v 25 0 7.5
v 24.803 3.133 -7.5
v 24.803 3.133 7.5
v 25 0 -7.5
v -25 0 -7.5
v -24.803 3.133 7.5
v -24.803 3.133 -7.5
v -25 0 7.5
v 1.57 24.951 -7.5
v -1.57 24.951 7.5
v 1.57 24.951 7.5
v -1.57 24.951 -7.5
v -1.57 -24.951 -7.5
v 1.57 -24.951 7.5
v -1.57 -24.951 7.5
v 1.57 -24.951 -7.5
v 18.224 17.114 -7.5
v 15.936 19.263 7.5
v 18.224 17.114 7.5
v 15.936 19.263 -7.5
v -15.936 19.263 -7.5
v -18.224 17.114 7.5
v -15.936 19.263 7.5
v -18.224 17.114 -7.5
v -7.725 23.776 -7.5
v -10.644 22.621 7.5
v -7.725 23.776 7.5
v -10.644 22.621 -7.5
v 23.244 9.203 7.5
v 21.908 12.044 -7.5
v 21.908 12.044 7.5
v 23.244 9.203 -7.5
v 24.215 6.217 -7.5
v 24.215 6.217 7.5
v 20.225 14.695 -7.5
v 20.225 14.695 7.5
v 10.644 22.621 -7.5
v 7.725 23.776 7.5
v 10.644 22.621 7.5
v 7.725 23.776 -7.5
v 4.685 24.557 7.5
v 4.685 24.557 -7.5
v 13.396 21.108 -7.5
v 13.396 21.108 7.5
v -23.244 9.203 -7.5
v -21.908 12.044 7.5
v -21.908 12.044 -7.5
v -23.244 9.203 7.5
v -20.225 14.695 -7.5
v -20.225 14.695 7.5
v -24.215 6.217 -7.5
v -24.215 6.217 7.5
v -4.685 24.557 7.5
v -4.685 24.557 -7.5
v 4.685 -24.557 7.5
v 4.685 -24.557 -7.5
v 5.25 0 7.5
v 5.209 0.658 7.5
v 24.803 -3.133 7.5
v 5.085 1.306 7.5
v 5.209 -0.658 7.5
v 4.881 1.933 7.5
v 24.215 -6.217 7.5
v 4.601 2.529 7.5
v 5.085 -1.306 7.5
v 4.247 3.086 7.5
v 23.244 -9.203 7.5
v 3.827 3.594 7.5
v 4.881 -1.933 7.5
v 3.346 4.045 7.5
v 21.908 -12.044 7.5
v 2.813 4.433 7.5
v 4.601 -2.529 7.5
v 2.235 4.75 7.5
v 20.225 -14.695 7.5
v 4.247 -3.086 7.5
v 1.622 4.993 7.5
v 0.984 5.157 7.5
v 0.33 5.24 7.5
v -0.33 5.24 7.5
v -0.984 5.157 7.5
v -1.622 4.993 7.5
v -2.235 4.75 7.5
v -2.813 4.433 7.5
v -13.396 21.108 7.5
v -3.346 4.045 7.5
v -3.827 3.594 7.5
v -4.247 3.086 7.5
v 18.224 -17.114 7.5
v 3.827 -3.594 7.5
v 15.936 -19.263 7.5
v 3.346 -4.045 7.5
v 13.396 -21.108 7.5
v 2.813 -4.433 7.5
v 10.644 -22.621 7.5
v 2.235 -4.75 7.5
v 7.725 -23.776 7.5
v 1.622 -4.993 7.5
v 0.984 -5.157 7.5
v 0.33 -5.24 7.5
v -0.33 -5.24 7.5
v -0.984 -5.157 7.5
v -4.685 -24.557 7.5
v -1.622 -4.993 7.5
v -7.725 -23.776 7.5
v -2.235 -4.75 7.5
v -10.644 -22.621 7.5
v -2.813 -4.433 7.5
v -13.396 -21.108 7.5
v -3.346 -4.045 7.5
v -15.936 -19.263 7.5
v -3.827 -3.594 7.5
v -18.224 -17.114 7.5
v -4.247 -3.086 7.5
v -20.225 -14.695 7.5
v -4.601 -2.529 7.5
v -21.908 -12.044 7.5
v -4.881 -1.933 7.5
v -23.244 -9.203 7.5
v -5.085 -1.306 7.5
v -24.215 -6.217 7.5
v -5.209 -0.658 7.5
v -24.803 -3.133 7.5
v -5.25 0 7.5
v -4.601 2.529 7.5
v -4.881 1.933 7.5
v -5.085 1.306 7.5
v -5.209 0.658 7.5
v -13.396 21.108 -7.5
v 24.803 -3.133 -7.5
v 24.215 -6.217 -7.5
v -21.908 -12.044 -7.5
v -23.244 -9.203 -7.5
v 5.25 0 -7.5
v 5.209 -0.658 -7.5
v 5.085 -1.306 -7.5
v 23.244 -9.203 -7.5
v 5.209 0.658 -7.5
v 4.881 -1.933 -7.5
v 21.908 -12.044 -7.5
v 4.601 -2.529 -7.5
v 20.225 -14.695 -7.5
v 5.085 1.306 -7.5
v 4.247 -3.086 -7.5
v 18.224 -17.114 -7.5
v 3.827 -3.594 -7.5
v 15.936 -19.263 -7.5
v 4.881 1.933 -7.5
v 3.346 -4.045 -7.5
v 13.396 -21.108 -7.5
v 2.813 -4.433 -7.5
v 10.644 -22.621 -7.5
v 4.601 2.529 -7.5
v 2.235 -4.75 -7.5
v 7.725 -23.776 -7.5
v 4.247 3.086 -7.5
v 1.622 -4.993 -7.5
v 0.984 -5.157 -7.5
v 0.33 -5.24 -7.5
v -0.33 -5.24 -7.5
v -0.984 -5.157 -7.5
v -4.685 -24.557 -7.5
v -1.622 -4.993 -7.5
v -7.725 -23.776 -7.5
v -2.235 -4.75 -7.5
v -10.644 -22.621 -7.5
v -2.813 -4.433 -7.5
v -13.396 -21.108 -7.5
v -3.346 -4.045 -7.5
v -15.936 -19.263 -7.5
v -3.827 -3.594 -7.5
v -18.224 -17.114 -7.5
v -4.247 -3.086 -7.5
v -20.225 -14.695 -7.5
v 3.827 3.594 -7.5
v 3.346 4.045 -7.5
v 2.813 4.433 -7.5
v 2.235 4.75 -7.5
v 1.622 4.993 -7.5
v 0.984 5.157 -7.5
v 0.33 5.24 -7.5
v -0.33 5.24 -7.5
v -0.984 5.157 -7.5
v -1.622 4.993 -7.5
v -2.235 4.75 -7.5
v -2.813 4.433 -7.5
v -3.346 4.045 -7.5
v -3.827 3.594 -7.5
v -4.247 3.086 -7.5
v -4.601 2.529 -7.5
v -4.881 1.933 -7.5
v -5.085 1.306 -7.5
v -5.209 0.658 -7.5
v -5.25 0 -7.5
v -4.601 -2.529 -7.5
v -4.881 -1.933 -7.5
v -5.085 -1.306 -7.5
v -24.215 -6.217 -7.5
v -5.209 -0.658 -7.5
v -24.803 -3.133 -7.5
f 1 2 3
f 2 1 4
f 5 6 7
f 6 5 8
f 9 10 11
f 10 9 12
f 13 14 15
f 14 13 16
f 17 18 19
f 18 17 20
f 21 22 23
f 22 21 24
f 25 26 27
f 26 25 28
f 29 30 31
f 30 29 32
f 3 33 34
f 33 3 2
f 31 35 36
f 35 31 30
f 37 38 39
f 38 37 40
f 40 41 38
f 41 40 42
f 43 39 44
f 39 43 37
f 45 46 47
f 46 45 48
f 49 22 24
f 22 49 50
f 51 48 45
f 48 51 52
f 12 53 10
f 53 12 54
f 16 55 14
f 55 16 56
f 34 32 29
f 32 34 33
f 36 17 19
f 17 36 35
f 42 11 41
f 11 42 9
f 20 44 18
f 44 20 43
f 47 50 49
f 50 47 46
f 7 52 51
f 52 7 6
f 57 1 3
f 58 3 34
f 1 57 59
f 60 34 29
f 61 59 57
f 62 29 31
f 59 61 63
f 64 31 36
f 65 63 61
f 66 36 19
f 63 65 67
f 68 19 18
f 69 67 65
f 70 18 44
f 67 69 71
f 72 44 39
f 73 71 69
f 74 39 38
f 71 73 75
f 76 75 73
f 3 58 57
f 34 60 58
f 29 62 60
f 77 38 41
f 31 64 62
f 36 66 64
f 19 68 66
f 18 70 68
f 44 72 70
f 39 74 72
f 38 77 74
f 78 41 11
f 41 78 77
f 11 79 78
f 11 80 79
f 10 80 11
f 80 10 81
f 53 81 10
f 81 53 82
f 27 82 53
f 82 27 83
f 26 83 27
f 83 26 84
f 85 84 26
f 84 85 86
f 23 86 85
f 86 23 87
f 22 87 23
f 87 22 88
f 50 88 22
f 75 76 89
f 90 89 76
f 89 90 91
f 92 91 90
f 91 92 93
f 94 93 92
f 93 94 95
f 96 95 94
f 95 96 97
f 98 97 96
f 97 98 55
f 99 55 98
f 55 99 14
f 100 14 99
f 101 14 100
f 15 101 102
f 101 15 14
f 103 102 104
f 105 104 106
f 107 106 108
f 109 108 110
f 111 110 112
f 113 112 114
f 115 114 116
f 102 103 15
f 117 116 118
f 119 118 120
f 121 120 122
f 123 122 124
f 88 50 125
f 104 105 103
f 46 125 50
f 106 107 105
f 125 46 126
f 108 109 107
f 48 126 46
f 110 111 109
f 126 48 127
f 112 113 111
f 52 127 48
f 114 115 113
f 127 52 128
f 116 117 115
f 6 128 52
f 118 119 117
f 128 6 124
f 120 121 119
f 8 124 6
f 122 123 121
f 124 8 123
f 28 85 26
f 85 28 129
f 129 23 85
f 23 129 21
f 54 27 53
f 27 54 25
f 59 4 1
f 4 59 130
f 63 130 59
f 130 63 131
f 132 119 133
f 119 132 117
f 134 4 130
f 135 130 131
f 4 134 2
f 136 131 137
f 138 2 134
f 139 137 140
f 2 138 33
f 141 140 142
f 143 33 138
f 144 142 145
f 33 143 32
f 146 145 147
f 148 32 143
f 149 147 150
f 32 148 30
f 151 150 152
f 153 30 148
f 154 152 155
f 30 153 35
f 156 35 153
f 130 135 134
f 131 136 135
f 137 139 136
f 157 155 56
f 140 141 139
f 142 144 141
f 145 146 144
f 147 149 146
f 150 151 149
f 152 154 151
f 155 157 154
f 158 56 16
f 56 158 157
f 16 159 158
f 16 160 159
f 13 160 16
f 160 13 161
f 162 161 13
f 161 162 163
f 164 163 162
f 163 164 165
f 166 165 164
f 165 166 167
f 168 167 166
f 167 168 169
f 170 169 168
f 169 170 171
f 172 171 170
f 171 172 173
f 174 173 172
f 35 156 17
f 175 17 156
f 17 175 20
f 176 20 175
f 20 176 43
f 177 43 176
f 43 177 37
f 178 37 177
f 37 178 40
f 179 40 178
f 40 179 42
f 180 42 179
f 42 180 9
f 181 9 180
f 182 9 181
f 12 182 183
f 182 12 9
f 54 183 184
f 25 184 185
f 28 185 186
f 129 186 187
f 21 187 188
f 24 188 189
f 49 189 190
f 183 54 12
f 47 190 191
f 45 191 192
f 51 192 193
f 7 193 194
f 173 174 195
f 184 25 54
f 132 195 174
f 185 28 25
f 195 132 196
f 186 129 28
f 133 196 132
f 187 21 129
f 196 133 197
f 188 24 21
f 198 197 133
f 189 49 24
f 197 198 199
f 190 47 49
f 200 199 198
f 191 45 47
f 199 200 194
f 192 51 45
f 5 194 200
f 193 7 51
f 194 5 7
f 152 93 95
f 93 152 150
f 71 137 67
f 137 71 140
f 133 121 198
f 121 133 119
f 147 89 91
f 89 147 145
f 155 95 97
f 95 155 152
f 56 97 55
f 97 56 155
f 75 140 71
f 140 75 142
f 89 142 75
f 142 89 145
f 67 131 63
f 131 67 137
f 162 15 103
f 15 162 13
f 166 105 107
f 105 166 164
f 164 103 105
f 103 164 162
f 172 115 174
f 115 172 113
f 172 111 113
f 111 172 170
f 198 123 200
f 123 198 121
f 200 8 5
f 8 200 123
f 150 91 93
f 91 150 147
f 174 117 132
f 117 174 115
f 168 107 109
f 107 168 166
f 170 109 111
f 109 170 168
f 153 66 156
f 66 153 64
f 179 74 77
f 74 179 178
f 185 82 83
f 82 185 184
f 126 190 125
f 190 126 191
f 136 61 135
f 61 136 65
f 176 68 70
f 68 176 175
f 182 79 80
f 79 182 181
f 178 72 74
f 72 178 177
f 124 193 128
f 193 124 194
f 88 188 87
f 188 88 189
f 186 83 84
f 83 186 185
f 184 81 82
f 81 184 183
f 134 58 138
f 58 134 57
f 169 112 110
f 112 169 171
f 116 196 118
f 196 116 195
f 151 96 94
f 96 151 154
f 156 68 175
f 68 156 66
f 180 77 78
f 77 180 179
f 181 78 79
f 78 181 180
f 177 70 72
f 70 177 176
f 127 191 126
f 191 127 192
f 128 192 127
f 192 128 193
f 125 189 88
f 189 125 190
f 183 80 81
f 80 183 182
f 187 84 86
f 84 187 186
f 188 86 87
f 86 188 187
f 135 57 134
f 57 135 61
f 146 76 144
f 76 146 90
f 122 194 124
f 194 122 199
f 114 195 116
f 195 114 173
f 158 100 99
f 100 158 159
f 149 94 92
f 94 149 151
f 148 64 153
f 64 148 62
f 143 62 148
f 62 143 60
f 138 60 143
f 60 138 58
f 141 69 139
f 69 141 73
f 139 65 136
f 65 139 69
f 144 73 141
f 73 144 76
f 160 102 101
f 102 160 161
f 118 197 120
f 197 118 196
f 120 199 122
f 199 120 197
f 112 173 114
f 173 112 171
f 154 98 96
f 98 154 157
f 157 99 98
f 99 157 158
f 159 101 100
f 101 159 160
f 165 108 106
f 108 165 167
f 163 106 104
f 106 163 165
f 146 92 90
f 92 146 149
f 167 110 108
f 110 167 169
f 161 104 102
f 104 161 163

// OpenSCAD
$fn = 50;


difference() {
	union() {
		translate(v = [0, 0, -7.5000000000]) {
			cylinder(h = 15, r = 25.0000000000);
		}
	}
	union() {
		translate(v = [0, 0, -100.0000000000]) {
			cylinder(h = 200, r = 5.2500000000);
		}
	}
}
